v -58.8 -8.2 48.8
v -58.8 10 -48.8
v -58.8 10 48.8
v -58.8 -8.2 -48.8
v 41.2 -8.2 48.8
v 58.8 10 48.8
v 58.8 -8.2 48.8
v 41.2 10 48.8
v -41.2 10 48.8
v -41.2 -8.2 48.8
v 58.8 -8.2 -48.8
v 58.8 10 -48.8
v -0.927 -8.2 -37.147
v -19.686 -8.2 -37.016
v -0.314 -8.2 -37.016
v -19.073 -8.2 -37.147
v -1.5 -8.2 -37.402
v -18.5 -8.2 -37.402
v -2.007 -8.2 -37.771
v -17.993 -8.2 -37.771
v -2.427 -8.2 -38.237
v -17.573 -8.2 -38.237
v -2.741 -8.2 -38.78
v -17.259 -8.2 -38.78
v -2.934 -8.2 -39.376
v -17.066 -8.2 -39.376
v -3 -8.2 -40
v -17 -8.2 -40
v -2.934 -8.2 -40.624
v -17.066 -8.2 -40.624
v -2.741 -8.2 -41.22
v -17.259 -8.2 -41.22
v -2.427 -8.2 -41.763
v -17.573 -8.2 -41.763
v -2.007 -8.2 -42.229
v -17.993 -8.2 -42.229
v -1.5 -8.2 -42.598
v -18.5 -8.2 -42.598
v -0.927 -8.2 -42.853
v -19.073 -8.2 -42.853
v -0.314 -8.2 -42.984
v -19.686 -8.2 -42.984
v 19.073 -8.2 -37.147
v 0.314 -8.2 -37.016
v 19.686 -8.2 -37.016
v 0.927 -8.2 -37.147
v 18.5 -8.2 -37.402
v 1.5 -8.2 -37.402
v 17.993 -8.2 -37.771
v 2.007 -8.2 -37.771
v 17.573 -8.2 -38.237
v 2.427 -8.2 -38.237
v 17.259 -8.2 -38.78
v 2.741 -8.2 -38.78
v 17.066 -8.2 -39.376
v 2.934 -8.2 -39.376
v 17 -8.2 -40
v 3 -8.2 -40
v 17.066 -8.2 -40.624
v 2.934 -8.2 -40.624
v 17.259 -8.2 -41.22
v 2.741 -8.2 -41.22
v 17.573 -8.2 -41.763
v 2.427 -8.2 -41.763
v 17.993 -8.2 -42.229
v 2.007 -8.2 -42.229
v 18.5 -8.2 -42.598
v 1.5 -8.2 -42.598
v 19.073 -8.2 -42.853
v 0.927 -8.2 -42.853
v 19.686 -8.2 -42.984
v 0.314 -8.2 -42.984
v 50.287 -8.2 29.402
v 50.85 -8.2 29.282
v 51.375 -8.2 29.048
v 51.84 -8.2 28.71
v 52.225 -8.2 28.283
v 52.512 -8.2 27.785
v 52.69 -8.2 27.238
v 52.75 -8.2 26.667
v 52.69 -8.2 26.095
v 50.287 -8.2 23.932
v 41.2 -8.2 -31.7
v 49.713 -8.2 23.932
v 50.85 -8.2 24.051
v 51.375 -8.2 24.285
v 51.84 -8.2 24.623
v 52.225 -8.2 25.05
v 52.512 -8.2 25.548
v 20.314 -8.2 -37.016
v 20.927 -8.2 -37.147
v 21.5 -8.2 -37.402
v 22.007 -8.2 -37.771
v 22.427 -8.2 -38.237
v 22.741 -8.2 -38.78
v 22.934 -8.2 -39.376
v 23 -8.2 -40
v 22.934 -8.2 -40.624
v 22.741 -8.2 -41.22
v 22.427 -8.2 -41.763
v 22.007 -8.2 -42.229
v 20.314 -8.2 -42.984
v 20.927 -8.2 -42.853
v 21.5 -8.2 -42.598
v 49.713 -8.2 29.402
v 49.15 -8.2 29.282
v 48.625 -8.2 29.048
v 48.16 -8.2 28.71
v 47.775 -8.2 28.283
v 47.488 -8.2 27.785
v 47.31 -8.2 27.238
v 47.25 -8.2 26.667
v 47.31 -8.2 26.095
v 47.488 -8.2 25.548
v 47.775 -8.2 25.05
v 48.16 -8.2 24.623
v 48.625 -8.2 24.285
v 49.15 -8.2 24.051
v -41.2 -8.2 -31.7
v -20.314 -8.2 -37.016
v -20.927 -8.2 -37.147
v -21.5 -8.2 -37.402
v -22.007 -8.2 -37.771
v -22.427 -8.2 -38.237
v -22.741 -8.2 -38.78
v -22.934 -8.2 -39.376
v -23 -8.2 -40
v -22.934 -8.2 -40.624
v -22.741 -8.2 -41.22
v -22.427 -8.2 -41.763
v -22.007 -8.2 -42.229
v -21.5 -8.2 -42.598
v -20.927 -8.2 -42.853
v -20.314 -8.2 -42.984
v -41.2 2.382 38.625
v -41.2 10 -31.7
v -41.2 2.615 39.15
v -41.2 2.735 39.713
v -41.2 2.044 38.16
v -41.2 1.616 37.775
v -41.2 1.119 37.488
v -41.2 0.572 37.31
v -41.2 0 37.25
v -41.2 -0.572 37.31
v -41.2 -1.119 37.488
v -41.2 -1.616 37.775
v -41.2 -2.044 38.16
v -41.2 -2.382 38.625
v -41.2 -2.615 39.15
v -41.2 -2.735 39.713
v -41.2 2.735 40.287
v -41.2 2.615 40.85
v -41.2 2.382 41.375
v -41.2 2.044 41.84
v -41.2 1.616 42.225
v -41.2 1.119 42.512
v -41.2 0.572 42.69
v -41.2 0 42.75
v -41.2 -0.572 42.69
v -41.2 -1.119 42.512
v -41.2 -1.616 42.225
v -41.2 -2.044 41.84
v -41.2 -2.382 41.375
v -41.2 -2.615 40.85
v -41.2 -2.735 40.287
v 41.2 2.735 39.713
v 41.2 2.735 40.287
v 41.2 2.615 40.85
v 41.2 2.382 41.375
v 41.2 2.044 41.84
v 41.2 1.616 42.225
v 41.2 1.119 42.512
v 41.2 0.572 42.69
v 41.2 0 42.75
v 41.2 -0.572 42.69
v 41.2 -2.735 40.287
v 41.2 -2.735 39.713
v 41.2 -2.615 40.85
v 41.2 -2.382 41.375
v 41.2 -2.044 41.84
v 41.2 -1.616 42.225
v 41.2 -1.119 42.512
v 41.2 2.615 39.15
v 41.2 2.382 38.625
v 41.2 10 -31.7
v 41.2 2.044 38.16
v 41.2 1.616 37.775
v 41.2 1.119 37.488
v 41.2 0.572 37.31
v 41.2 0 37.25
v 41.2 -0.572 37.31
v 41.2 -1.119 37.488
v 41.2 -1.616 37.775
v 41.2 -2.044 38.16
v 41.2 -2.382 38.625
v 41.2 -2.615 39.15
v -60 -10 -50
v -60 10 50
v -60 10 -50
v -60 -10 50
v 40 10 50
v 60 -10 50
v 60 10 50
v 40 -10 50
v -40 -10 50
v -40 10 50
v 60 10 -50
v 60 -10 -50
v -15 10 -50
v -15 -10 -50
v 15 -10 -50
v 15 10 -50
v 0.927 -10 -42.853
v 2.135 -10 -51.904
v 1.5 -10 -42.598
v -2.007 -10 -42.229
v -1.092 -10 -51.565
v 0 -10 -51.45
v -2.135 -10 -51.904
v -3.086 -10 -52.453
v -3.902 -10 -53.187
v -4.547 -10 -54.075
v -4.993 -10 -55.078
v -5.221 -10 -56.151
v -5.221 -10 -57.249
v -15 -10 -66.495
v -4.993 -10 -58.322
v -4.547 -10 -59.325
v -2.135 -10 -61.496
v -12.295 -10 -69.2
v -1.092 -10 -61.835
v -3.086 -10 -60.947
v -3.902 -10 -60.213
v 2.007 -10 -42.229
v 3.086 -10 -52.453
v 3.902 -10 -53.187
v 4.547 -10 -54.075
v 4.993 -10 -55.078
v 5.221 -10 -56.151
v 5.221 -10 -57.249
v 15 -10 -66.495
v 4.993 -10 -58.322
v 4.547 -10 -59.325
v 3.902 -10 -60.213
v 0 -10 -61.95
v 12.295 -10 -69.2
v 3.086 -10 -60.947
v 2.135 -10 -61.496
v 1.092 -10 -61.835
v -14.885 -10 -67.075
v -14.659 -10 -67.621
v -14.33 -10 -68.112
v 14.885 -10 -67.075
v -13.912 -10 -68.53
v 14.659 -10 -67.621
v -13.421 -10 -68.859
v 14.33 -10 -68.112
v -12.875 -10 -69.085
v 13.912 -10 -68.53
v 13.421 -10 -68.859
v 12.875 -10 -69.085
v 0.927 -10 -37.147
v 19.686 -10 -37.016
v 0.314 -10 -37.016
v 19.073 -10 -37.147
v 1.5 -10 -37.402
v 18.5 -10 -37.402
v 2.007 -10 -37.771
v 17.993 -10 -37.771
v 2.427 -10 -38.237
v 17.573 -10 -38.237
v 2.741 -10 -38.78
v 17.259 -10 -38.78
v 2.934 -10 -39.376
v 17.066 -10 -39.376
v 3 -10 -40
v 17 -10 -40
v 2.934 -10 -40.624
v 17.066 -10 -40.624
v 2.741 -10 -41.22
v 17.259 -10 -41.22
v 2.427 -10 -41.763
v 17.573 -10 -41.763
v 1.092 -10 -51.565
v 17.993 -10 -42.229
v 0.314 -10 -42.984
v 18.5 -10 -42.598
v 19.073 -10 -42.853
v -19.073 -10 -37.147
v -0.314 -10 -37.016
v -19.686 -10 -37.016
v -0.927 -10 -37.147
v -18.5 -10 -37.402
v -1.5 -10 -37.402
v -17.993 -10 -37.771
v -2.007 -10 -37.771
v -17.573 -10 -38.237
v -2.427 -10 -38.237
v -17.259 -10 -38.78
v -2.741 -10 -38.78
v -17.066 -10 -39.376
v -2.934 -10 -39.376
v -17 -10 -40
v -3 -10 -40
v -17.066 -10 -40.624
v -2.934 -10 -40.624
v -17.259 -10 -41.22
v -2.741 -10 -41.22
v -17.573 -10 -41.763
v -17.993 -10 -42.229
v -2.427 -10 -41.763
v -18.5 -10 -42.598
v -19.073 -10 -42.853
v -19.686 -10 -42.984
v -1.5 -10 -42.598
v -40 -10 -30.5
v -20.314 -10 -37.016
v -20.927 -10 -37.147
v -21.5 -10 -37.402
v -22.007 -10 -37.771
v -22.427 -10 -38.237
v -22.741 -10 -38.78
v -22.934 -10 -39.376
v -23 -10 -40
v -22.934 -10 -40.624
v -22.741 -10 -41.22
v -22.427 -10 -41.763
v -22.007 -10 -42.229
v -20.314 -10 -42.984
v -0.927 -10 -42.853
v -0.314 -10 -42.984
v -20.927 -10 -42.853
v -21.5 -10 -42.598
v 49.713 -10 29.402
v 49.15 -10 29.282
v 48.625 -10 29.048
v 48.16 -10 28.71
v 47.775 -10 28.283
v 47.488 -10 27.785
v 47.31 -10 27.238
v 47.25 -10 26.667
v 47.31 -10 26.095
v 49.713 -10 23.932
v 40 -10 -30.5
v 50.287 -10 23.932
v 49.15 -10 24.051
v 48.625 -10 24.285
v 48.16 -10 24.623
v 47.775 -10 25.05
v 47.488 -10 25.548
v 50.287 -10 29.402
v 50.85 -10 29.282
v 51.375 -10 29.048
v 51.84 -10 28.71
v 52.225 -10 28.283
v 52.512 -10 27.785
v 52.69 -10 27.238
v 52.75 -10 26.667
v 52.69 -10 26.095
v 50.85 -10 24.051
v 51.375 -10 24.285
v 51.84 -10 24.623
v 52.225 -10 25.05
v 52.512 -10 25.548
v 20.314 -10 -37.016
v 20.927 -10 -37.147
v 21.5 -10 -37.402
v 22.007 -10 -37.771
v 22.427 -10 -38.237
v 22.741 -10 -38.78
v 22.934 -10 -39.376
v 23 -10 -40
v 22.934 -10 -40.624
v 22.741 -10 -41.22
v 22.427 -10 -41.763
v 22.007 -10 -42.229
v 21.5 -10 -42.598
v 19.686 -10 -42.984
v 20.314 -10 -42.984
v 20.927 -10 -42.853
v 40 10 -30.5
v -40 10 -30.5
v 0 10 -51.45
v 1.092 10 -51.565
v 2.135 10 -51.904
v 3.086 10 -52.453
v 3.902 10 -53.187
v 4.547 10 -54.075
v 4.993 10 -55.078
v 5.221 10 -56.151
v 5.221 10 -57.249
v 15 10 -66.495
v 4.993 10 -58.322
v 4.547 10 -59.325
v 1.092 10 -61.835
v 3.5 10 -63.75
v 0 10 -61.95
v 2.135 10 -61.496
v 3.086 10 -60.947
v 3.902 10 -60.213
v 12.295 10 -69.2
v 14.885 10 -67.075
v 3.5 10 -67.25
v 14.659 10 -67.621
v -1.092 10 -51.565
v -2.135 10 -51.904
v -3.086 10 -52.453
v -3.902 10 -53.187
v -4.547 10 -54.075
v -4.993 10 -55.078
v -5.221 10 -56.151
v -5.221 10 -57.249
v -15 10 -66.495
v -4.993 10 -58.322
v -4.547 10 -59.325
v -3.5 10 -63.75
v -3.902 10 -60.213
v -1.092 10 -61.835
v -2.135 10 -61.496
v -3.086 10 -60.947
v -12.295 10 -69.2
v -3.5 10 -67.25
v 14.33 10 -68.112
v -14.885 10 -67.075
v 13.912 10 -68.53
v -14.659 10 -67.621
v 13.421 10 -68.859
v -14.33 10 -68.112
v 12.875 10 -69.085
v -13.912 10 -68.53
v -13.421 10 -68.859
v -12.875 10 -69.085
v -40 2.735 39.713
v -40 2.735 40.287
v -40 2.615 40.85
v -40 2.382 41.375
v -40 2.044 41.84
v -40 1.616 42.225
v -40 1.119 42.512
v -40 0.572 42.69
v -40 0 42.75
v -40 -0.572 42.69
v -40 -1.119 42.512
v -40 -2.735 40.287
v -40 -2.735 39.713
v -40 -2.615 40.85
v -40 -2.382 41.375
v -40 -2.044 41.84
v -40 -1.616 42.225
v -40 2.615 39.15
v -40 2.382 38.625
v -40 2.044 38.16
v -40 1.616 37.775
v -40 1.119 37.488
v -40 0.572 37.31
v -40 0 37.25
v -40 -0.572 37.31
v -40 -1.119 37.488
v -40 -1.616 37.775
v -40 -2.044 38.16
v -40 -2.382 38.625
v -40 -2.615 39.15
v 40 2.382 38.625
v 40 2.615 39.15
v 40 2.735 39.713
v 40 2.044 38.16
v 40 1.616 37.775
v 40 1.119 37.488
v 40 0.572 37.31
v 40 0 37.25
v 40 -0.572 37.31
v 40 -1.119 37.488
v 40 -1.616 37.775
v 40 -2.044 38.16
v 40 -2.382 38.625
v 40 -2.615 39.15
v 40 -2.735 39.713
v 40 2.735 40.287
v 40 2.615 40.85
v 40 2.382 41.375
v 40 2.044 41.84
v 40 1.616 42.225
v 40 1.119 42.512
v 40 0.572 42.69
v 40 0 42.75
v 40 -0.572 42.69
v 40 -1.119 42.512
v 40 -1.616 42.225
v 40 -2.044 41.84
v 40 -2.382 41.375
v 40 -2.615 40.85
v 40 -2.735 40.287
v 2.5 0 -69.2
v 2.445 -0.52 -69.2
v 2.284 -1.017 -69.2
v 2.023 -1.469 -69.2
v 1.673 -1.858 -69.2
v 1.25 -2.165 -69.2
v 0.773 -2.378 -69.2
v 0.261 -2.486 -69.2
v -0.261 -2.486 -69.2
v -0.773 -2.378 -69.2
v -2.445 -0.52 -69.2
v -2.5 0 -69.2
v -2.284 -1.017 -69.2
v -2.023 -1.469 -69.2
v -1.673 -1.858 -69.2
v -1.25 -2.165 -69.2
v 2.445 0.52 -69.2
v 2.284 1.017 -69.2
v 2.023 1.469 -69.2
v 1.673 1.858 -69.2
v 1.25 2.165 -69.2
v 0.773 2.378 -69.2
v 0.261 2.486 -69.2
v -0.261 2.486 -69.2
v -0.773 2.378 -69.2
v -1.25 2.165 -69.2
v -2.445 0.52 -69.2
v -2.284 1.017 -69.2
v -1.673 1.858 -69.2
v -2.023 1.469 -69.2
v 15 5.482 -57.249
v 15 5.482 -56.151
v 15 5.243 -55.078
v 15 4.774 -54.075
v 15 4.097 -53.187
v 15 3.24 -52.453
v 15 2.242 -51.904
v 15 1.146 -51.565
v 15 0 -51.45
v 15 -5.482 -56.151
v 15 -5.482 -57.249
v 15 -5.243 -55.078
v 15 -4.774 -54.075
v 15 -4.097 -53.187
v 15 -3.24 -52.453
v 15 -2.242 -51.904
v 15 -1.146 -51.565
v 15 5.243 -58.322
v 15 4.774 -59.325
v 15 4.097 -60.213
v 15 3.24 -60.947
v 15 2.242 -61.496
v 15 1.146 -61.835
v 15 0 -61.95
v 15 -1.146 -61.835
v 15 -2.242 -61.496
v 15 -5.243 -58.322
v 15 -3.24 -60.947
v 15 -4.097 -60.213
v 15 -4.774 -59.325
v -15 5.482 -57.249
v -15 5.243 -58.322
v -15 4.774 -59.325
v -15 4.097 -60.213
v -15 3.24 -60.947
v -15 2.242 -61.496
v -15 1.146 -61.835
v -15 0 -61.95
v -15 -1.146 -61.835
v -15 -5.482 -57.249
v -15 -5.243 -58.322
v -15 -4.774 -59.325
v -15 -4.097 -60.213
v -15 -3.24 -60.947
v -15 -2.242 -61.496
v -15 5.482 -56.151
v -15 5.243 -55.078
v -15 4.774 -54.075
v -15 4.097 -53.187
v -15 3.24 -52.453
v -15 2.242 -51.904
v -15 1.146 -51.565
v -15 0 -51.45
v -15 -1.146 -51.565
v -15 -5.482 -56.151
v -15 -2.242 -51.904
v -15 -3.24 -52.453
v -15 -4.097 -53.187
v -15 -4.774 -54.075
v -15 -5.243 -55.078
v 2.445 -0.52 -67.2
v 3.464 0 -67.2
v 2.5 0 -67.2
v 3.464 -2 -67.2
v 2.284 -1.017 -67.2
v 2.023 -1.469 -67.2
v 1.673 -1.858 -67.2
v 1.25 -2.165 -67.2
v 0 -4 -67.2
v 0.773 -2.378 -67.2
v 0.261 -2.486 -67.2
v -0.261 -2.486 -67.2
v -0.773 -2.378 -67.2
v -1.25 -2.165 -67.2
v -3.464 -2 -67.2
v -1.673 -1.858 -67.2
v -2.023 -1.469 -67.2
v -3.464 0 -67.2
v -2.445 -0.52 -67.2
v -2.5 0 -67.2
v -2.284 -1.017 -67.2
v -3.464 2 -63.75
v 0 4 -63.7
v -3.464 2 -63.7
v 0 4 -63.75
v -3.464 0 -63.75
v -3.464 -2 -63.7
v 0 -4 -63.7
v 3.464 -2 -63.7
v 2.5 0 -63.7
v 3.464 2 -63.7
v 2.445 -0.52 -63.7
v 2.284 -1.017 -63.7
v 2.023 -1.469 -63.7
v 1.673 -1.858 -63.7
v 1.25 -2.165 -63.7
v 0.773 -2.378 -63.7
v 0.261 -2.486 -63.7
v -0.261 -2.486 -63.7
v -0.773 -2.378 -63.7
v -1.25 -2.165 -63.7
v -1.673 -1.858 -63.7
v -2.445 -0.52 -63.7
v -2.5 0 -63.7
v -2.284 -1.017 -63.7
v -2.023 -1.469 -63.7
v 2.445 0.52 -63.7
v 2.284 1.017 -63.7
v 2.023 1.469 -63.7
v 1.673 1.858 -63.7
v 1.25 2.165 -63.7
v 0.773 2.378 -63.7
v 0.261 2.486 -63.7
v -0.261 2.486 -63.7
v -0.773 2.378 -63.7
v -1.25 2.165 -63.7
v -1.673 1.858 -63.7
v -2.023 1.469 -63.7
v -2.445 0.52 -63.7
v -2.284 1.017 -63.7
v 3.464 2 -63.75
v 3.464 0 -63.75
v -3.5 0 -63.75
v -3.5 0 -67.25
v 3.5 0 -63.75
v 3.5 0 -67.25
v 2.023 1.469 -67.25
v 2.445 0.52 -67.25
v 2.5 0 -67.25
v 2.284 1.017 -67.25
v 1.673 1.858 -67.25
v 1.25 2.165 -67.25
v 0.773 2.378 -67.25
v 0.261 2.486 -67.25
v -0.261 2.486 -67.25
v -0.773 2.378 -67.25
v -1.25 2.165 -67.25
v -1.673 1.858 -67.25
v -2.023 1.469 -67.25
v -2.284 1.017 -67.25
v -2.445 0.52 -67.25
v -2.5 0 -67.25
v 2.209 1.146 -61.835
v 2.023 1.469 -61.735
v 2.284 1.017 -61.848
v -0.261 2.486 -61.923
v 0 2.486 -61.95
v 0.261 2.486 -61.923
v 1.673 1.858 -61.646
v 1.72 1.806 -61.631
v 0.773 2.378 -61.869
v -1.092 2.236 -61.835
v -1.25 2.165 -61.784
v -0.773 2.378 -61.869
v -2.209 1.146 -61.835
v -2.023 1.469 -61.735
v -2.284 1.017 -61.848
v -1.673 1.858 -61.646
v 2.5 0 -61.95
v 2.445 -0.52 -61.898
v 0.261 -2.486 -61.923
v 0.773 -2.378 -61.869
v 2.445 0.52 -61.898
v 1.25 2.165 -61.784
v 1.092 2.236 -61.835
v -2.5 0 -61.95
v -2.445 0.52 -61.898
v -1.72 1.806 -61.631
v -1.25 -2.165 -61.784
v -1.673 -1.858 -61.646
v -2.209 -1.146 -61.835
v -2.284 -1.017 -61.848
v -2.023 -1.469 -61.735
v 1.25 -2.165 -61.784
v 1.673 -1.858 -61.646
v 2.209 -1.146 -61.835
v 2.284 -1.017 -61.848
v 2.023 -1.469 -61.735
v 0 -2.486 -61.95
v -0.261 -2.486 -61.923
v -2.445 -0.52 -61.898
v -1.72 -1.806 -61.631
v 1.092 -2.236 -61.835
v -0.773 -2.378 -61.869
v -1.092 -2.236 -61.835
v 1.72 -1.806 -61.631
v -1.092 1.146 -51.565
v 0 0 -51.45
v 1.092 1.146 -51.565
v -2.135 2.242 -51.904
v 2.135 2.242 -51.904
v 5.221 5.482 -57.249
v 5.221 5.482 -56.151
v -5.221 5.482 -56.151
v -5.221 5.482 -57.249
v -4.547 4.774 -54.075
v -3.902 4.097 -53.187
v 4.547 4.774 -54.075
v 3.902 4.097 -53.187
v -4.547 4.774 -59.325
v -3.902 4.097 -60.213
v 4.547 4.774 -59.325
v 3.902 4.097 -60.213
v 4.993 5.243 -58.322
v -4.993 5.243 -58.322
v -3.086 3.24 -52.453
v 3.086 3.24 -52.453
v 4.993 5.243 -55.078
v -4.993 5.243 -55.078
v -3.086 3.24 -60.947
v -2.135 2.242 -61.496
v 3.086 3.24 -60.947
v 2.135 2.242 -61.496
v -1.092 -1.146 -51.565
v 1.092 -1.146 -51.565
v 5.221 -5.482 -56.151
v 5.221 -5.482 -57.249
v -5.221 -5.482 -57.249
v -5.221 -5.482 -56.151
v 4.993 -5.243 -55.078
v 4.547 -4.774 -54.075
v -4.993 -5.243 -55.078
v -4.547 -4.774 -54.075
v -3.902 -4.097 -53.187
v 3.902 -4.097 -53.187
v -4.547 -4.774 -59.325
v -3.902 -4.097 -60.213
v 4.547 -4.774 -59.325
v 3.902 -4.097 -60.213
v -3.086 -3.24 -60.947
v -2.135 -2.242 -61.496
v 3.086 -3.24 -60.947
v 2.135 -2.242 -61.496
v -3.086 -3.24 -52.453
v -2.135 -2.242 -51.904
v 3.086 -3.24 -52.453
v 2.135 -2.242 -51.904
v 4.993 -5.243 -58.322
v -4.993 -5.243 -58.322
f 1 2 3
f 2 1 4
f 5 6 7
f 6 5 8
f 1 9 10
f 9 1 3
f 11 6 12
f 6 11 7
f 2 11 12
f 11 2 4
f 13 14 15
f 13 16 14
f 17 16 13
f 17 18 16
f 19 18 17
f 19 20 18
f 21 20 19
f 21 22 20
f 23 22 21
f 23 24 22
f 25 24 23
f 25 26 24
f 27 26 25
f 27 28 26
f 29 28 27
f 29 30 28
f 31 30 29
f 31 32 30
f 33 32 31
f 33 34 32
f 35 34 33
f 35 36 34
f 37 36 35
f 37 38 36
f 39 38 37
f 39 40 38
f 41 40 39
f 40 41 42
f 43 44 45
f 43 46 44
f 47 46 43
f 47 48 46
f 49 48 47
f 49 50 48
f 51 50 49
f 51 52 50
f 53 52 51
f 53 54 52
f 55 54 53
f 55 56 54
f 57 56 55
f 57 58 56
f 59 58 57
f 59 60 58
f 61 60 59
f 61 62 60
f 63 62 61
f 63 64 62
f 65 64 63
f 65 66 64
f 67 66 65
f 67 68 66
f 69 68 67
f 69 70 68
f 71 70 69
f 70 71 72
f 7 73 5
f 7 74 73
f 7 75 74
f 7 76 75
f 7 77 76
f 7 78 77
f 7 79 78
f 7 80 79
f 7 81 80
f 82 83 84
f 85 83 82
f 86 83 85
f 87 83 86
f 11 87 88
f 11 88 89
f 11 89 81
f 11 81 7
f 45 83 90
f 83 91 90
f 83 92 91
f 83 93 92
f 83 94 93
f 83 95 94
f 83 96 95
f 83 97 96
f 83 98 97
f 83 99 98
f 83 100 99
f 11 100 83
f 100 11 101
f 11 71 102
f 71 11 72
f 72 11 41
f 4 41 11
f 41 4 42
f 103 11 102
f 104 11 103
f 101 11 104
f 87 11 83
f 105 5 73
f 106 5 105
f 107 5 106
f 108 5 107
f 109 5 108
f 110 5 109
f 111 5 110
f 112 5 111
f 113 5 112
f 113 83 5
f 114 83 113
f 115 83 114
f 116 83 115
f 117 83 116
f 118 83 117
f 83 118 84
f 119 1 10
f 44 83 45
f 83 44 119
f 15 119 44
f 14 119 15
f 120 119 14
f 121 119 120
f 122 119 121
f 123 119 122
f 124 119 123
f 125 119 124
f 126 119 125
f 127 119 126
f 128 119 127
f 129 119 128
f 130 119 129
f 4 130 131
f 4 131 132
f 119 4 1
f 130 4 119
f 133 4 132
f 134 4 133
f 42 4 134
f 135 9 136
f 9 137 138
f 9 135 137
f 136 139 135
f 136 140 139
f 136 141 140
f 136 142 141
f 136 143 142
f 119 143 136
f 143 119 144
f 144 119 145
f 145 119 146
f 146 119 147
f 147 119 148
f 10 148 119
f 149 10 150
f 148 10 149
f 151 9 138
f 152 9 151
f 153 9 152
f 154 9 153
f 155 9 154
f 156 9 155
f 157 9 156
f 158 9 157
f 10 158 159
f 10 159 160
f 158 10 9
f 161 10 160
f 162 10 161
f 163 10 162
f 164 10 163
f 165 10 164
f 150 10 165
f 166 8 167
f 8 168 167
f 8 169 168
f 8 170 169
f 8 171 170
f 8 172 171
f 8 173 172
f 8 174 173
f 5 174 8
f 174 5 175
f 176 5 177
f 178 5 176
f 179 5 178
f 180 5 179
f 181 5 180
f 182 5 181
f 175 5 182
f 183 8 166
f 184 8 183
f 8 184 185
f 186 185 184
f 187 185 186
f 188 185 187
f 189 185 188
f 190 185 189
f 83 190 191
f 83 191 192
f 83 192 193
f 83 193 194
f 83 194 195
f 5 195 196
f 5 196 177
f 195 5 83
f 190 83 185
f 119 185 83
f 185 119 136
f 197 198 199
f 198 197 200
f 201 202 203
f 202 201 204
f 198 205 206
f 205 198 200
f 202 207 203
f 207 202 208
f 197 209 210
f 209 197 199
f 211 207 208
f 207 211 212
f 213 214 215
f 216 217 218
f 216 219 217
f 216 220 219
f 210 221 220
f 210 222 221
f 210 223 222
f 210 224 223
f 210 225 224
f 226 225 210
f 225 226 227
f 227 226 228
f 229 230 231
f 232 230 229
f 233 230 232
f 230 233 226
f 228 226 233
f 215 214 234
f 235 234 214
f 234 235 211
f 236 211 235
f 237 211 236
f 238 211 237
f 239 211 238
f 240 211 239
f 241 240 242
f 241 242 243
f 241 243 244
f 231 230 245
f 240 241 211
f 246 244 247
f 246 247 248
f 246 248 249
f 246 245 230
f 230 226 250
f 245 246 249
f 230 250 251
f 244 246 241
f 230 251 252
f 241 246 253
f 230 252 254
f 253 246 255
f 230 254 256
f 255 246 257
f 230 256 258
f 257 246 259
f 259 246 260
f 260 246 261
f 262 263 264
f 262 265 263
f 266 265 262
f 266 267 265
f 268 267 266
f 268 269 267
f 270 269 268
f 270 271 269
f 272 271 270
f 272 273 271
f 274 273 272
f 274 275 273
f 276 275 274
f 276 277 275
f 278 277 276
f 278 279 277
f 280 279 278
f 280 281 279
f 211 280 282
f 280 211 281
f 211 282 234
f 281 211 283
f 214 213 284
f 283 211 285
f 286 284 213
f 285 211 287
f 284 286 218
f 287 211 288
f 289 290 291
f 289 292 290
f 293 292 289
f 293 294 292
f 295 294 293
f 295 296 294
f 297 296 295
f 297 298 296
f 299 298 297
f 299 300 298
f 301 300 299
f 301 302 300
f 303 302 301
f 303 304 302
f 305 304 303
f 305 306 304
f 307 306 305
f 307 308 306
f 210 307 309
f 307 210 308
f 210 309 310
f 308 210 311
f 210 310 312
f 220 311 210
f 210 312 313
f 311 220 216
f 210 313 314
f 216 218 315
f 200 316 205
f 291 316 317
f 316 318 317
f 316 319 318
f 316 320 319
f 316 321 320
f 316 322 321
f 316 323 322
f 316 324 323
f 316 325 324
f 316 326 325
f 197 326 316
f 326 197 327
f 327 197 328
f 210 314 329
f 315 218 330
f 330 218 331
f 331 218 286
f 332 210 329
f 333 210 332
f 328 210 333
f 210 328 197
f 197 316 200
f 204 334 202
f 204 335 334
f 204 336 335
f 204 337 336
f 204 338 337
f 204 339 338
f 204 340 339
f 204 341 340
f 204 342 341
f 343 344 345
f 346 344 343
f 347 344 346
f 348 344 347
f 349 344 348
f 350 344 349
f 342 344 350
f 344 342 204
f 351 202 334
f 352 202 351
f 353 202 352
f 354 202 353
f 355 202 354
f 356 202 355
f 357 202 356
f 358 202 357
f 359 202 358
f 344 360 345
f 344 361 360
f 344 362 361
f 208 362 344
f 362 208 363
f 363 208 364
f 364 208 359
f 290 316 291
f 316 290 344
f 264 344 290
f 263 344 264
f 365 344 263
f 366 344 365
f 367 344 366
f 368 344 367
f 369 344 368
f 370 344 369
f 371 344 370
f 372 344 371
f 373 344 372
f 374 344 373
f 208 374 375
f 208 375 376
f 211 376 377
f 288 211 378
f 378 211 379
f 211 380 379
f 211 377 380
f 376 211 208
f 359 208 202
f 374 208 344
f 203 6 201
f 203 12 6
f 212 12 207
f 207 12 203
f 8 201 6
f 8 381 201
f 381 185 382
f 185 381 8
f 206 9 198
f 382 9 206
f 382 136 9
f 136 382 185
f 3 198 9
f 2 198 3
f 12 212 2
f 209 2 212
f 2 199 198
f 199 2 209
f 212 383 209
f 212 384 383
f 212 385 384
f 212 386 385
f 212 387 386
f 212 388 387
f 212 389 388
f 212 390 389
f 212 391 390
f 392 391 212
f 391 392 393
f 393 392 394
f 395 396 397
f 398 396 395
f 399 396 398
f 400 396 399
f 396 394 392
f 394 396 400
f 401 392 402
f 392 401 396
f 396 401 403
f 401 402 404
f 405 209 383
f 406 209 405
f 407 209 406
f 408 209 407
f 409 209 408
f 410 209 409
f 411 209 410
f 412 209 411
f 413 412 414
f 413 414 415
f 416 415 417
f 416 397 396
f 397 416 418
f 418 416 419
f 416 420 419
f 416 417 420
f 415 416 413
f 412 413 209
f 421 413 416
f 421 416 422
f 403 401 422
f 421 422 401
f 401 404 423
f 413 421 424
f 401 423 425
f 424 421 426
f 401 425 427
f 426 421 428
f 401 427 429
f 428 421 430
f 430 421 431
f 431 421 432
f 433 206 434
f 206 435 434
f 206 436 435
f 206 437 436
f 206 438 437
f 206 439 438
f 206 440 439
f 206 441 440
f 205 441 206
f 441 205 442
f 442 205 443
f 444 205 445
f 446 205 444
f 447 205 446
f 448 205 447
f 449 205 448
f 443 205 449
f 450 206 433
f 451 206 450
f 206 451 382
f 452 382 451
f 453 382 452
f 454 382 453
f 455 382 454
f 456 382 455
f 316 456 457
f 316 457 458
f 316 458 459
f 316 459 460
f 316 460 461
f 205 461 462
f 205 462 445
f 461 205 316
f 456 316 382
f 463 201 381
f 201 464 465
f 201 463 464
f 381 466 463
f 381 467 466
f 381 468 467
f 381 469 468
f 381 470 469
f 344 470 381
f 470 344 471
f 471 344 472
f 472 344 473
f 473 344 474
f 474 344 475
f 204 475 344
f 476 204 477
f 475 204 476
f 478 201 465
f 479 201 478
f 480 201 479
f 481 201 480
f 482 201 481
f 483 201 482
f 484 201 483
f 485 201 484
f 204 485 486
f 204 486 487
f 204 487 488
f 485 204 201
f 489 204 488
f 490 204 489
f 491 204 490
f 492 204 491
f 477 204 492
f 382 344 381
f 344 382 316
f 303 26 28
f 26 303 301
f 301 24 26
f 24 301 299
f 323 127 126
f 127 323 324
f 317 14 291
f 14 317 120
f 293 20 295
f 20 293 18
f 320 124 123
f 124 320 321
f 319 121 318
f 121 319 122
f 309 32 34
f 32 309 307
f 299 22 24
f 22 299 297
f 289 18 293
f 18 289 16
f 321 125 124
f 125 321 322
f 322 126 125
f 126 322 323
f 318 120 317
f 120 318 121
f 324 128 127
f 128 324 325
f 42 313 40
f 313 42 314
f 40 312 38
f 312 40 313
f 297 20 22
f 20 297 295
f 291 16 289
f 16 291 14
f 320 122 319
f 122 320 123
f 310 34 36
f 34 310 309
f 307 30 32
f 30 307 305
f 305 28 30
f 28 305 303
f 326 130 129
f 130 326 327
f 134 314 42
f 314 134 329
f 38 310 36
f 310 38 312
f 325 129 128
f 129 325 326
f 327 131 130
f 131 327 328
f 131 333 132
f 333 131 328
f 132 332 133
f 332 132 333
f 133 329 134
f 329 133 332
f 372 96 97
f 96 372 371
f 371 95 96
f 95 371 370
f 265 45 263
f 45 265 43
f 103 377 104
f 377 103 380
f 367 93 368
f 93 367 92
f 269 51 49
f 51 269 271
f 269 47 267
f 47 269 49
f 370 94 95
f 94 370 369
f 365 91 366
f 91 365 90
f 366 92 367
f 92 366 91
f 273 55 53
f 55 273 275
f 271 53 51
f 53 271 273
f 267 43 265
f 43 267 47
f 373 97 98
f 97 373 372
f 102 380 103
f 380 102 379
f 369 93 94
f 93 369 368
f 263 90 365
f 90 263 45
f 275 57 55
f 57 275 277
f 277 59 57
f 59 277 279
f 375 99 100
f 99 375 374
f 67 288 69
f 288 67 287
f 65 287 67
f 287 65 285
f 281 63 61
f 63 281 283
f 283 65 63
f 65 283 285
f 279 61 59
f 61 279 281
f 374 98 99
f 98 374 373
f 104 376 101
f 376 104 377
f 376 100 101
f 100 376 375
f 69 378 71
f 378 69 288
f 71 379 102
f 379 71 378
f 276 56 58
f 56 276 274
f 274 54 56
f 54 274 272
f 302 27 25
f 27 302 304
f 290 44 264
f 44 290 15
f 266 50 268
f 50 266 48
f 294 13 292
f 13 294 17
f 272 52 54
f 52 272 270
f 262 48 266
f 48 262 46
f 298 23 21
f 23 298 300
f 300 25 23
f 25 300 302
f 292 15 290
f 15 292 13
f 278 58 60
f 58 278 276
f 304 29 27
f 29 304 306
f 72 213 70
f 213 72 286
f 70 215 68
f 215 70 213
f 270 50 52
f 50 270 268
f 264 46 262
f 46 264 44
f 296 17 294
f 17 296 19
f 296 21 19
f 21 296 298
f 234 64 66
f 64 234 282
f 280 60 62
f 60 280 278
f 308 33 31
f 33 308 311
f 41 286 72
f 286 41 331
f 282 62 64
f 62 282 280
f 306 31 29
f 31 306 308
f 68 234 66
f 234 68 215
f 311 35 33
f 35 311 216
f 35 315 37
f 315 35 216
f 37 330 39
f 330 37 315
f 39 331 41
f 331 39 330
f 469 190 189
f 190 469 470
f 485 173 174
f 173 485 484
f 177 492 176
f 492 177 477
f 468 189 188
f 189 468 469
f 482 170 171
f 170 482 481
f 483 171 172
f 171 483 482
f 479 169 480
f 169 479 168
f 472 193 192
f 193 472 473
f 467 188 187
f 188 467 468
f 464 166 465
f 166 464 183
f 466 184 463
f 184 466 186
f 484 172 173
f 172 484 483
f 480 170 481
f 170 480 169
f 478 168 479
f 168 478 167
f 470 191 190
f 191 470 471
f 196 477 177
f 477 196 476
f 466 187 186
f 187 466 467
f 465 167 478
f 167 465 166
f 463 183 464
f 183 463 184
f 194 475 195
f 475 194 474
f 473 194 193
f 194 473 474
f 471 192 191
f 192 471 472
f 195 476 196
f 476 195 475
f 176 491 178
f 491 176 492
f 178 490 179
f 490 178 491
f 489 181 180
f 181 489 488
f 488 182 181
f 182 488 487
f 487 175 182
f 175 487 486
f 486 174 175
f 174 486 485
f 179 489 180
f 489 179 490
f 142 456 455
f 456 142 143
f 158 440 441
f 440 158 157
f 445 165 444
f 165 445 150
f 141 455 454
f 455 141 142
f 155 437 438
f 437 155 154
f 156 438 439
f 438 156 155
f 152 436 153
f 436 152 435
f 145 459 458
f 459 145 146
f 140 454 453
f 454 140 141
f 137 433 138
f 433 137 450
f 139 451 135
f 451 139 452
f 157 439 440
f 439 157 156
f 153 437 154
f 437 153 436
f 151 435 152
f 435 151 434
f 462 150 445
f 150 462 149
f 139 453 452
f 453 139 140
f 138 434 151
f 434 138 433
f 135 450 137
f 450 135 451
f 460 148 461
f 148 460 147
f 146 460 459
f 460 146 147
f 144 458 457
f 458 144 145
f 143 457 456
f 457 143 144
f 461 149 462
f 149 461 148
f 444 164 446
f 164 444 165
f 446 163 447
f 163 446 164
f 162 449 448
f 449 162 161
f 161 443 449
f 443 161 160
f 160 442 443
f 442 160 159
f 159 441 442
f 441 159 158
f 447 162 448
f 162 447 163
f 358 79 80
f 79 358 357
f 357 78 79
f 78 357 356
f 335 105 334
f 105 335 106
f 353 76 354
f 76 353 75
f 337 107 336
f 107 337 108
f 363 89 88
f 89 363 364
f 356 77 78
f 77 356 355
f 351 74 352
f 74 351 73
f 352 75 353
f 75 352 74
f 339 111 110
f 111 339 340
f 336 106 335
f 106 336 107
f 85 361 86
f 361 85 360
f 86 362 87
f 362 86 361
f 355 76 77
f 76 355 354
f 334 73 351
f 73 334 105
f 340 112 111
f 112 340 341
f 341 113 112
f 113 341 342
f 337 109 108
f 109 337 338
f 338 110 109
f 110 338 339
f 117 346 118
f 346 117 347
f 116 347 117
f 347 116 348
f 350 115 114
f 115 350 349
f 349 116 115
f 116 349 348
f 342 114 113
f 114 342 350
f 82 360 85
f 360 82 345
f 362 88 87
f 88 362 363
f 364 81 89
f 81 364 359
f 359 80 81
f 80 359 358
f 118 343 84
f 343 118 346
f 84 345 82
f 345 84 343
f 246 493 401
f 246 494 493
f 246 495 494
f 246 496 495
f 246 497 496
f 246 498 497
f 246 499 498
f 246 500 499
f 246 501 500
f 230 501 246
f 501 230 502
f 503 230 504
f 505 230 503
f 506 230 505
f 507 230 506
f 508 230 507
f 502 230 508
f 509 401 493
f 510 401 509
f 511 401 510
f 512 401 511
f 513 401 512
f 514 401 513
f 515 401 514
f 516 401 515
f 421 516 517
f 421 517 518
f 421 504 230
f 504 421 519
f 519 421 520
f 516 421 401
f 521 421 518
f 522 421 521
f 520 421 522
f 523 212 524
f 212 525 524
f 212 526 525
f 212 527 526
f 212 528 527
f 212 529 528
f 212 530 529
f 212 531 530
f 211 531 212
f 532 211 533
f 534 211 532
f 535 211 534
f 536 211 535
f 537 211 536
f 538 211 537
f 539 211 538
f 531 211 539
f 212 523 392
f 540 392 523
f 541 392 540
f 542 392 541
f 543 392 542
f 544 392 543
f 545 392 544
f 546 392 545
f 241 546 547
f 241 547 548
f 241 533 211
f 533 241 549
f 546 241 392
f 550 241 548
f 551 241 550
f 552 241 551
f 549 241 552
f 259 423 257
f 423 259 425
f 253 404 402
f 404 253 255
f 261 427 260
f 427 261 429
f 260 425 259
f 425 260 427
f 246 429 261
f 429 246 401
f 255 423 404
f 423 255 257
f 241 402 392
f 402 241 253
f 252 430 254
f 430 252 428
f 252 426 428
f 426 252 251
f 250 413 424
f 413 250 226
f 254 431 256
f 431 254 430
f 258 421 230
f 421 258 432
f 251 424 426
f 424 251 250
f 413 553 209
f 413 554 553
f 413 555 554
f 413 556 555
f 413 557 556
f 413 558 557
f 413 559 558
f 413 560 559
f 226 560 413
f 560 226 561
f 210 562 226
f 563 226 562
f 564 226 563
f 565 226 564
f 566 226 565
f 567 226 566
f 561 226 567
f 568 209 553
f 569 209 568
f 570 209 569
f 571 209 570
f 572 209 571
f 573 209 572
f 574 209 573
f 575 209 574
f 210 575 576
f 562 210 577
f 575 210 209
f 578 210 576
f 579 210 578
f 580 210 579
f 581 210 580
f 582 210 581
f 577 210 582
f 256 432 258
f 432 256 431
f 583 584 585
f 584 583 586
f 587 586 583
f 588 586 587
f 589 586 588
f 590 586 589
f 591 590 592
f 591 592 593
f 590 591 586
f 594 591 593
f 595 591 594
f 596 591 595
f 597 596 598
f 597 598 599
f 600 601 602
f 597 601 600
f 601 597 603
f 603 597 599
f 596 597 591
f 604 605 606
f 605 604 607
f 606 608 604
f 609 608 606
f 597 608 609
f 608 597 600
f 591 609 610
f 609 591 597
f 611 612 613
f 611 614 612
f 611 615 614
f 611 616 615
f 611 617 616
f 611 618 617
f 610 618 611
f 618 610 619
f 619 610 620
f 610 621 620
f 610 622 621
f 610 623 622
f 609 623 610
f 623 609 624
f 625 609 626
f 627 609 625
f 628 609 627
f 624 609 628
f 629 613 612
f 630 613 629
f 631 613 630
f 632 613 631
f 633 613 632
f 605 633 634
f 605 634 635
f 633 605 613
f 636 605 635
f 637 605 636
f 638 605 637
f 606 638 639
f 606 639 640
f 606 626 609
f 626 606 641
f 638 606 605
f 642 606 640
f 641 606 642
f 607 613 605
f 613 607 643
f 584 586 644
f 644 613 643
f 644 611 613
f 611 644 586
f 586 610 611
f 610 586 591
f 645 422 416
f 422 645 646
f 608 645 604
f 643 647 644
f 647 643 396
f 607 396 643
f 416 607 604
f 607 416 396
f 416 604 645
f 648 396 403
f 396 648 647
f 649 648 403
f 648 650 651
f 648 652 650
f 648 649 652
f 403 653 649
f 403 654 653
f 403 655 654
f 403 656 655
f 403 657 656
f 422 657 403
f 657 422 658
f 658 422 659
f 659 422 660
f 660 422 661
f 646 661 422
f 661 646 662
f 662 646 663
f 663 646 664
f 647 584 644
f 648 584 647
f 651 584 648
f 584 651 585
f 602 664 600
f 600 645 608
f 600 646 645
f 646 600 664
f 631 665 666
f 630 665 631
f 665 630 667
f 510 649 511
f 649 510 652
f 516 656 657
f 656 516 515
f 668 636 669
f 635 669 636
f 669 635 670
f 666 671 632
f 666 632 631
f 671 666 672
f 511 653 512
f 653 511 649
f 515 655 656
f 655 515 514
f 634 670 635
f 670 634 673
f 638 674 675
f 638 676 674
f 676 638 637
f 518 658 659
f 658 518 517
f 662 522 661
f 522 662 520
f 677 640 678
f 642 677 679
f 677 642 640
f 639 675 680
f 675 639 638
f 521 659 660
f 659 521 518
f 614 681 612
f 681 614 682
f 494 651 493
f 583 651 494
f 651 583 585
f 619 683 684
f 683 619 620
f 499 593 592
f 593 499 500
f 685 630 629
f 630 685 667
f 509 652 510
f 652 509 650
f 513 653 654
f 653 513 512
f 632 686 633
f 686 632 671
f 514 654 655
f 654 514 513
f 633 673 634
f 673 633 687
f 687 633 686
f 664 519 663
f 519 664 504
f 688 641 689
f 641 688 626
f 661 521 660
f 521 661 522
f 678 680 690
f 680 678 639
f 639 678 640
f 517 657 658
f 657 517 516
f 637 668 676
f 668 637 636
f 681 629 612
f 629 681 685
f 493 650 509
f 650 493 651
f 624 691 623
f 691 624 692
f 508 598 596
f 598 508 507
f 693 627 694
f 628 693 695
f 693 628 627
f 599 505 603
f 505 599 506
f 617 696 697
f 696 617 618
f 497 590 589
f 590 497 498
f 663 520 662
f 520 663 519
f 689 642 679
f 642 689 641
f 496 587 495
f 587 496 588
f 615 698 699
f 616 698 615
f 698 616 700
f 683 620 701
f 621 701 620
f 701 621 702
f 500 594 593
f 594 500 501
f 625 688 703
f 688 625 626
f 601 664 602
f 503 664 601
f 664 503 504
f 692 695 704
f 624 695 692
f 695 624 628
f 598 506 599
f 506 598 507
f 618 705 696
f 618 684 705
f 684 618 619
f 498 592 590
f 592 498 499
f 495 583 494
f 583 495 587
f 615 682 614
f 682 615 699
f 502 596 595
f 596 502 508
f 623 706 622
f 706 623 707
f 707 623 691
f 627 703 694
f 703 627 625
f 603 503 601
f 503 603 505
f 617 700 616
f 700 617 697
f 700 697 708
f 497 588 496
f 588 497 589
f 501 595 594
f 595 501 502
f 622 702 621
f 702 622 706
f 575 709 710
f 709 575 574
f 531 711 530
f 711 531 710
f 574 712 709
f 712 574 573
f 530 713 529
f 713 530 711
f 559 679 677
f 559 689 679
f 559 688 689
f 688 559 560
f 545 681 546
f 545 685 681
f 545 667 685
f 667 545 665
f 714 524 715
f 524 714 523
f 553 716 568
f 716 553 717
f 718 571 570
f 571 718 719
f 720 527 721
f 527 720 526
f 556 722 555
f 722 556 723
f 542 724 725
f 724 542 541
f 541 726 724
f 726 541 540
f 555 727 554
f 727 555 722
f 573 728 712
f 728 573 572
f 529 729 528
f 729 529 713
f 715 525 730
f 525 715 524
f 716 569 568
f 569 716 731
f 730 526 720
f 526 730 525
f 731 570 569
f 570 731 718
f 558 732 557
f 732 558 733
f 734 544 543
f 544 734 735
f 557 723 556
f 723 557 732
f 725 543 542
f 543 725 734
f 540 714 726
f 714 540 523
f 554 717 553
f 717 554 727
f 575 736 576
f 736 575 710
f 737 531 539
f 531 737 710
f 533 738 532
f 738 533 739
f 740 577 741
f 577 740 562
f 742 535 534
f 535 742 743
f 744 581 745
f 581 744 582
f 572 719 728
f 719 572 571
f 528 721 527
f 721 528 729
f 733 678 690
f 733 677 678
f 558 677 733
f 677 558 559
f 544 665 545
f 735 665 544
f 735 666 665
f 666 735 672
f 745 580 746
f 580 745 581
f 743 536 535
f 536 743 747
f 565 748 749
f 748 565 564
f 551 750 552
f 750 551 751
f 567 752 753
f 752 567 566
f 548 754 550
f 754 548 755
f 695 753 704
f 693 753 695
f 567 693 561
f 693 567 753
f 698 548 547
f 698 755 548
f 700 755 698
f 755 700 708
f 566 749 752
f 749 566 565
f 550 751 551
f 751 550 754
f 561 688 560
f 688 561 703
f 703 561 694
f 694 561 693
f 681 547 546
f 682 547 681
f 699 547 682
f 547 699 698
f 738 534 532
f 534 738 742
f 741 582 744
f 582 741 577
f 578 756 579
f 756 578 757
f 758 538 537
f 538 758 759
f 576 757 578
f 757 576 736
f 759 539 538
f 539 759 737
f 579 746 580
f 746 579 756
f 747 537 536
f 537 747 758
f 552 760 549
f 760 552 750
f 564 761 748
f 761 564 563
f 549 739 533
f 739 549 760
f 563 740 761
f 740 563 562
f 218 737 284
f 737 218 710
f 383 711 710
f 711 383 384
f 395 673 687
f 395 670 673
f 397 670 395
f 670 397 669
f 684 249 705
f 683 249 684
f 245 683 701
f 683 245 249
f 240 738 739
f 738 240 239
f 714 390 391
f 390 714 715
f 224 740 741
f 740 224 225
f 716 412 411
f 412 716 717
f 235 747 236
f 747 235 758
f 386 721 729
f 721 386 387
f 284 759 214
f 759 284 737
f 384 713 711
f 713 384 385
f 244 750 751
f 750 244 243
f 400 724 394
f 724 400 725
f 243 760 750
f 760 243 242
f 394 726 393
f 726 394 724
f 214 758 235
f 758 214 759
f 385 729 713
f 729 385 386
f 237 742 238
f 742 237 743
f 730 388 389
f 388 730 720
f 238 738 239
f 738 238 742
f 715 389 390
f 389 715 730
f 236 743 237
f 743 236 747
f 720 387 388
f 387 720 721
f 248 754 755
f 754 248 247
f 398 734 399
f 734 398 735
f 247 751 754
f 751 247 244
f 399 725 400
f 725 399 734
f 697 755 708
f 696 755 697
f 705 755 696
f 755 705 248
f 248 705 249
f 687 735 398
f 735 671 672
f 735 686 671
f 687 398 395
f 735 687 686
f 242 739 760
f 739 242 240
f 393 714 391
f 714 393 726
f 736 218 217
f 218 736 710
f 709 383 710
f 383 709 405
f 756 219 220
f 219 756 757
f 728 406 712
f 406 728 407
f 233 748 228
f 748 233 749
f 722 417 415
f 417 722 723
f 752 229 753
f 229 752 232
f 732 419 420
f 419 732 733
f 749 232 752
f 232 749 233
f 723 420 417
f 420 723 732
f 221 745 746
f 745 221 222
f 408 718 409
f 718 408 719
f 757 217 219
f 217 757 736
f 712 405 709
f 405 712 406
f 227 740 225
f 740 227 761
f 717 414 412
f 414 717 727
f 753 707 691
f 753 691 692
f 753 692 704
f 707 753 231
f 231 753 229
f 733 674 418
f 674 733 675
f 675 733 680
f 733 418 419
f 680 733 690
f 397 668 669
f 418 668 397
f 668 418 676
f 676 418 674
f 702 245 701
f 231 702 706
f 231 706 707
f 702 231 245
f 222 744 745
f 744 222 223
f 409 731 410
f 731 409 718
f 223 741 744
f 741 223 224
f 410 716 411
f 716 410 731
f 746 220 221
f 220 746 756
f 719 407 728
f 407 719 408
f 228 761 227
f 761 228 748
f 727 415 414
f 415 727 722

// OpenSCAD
include <BOSL/constants.scad>
use <BOSL/transforms.scad>
use <BOSL/shapes.scad>
use <BOSL/masks.scad>

abstand = 80;
innenhoehe = abstand;
tiefe = 20;
breite = tiefe;
rand = 1.2;
dLED = 5.5;
dSock = 6;

$fn = 30;

module mount(x_d){
       dRod = 10.5;
       x=20;
       y=30;
       z=20;
       l = 11;
       translate([-x_d+4.2,0,x/2])difference(){
         cuboid([x,y,z],fillet=3,edges = EDGES_Z_LF);
          scale([1,1,1.05])translate([2.5,y/2+0.5,0])rotate([90,0,0])cylinder(d = dRod, h = y+1);
          translate([2.5,0,-y/2])rotate([0,0,0])cylinder(d = dRod, h = y+1);

          translate([-x/2+2,0,0])rotate([90,0,90]){
            rotate([0,0,90])cylinder(h = 3.5, d=8, $fn = 6);
            translate([0,l/2,1.7])cube([7,l,3.5],center = true);
           translate([0,0,-2.5])cylinder(d = 5, h =10);
          }
       }
    }

module case(){
   difference(){
      cuboid([abstand+2*breite,tiefe,abstand+breite]);
      up(tiefe/2)cuboid([abstand,tiefe+1,abstand+1]);
      difference(){
      translate([0,rand,0])cuboid([abstand+2*breite-2*rand,tiefe-rand,abstand+breite-2*rand]);
      up(tiefe/2)cuboid([abstand+2*rand,tiefe+1,abstand+1+rand*2]);
      }
   }
}

module hole_x(d = dLED){
   left(rand)rotate([0,90,0])cylinder(d = d, h = 2*rand);
}

module hole_y(d = dLED){
   back(rand)rotate([90,0,0])cylinder(d = d, h = 2*rand);
}
module hole_z(d = dLED){
   down(rand)cylinder(d = d, h = 2*rand);
}
difference(){
   case();
   translate([abstand/2+0.1,0,abstand/2])hole_x();
   translate([-(abstand/2+0.1),0,abstand/2])hole_x();
   translate([abstand/2+tiefe/2,-tiefe/2+1,abstand/3])hole_y();
   for(i=[-20,20,0]){
      translate([i,-tiefe/2+1,-abstand/2])hole_y(dSock);
   }
}
translate([0,-tiefe/2,-abstand/2-tiefe-2*rand-1])rotate([0,-90,-90])mount(0);
